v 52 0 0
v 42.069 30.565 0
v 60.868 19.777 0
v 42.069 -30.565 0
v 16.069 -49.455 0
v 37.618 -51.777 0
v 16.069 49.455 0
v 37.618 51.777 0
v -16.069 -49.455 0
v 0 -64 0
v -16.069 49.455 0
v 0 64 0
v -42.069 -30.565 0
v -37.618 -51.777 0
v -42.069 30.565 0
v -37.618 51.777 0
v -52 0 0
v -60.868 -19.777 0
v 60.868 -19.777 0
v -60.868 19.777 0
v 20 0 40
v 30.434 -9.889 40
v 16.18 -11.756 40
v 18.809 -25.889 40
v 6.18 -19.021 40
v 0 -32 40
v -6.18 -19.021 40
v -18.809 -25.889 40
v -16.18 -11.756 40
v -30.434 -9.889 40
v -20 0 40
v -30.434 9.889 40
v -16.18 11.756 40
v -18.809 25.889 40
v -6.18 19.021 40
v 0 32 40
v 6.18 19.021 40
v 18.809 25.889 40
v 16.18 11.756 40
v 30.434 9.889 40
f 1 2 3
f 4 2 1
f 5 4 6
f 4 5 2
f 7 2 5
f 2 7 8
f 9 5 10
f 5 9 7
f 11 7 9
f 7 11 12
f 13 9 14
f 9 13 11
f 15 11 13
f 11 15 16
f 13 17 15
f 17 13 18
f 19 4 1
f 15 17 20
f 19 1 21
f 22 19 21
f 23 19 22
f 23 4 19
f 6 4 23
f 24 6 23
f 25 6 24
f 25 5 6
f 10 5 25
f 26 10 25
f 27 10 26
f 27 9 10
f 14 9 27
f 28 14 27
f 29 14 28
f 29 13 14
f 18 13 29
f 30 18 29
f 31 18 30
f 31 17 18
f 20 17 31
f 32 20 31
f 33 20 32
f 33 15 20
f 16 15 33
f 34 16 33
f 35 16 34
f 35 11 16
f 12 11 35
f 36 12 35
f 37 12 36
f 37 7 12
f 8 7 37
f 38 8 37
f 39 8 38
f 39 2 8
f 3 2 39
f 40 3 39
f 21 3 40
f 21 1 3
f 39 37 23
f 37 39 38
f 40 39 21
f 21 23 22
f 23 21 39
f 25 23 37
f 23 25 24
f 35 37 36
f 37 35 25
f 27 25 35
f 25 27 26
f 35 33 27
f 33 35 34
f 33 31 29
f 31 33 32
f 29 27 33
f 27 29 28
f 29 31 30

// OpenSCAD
measurements = [
  [52, 64, 0],
  [20, 32, 40],
  //[20.5, 30.75, 42]
];

pleats = 10;
pleat_height = 5;
tick = -180 / pleats;

function starpoints(ir, or, z) = [
  for (i = [0 : 2 * pleats - 1])
    let (th = i * tick, r = (i % 2 ? or : ir))
      [r * cos(th), r * sin(th), z]
];

function starfaces(level) =
  let (offset = level * 2*pleats, arity = level % 2) [
  // for each face but the last one
  each for (i = [0 : 2*pleats - 2]) [
    // near triangle
    [ offset + i + 2*pleats,
      offset + i,
      offset + i + (i%2 == arity ? 0 : 2*pleats) + 1],
    // far triangle
    [ offset + i + (i%2 == arity ? 2*pleats : 0),
      offset + i + 1,
      offset + i + 2*pleats + 1]
  ],
    // last near triangle
    [ offset + 4*pleats - 1,
      offset + 2*pleats - 1,
      offset + (arity ? 0 : 2*pleats)],
    // last far triangle
    [ offset + 2*pleats + (arity ? 2*pleats : 0) - 1,
      offset,
      offset + 2*pleats]
];

polyhedron([for(rim=measurements)
    each starpoints(rim[0], rim[1], rim[2])],
  [
    [each [2*pleats - 1:-1:0]],
    for(i=[0:len(measurements)-2])
      each starfaces(i),
    [for (i = [0 : 2*pleats - 1])
      (len(measurements)-1)*2*pleats + i]
  ]);
